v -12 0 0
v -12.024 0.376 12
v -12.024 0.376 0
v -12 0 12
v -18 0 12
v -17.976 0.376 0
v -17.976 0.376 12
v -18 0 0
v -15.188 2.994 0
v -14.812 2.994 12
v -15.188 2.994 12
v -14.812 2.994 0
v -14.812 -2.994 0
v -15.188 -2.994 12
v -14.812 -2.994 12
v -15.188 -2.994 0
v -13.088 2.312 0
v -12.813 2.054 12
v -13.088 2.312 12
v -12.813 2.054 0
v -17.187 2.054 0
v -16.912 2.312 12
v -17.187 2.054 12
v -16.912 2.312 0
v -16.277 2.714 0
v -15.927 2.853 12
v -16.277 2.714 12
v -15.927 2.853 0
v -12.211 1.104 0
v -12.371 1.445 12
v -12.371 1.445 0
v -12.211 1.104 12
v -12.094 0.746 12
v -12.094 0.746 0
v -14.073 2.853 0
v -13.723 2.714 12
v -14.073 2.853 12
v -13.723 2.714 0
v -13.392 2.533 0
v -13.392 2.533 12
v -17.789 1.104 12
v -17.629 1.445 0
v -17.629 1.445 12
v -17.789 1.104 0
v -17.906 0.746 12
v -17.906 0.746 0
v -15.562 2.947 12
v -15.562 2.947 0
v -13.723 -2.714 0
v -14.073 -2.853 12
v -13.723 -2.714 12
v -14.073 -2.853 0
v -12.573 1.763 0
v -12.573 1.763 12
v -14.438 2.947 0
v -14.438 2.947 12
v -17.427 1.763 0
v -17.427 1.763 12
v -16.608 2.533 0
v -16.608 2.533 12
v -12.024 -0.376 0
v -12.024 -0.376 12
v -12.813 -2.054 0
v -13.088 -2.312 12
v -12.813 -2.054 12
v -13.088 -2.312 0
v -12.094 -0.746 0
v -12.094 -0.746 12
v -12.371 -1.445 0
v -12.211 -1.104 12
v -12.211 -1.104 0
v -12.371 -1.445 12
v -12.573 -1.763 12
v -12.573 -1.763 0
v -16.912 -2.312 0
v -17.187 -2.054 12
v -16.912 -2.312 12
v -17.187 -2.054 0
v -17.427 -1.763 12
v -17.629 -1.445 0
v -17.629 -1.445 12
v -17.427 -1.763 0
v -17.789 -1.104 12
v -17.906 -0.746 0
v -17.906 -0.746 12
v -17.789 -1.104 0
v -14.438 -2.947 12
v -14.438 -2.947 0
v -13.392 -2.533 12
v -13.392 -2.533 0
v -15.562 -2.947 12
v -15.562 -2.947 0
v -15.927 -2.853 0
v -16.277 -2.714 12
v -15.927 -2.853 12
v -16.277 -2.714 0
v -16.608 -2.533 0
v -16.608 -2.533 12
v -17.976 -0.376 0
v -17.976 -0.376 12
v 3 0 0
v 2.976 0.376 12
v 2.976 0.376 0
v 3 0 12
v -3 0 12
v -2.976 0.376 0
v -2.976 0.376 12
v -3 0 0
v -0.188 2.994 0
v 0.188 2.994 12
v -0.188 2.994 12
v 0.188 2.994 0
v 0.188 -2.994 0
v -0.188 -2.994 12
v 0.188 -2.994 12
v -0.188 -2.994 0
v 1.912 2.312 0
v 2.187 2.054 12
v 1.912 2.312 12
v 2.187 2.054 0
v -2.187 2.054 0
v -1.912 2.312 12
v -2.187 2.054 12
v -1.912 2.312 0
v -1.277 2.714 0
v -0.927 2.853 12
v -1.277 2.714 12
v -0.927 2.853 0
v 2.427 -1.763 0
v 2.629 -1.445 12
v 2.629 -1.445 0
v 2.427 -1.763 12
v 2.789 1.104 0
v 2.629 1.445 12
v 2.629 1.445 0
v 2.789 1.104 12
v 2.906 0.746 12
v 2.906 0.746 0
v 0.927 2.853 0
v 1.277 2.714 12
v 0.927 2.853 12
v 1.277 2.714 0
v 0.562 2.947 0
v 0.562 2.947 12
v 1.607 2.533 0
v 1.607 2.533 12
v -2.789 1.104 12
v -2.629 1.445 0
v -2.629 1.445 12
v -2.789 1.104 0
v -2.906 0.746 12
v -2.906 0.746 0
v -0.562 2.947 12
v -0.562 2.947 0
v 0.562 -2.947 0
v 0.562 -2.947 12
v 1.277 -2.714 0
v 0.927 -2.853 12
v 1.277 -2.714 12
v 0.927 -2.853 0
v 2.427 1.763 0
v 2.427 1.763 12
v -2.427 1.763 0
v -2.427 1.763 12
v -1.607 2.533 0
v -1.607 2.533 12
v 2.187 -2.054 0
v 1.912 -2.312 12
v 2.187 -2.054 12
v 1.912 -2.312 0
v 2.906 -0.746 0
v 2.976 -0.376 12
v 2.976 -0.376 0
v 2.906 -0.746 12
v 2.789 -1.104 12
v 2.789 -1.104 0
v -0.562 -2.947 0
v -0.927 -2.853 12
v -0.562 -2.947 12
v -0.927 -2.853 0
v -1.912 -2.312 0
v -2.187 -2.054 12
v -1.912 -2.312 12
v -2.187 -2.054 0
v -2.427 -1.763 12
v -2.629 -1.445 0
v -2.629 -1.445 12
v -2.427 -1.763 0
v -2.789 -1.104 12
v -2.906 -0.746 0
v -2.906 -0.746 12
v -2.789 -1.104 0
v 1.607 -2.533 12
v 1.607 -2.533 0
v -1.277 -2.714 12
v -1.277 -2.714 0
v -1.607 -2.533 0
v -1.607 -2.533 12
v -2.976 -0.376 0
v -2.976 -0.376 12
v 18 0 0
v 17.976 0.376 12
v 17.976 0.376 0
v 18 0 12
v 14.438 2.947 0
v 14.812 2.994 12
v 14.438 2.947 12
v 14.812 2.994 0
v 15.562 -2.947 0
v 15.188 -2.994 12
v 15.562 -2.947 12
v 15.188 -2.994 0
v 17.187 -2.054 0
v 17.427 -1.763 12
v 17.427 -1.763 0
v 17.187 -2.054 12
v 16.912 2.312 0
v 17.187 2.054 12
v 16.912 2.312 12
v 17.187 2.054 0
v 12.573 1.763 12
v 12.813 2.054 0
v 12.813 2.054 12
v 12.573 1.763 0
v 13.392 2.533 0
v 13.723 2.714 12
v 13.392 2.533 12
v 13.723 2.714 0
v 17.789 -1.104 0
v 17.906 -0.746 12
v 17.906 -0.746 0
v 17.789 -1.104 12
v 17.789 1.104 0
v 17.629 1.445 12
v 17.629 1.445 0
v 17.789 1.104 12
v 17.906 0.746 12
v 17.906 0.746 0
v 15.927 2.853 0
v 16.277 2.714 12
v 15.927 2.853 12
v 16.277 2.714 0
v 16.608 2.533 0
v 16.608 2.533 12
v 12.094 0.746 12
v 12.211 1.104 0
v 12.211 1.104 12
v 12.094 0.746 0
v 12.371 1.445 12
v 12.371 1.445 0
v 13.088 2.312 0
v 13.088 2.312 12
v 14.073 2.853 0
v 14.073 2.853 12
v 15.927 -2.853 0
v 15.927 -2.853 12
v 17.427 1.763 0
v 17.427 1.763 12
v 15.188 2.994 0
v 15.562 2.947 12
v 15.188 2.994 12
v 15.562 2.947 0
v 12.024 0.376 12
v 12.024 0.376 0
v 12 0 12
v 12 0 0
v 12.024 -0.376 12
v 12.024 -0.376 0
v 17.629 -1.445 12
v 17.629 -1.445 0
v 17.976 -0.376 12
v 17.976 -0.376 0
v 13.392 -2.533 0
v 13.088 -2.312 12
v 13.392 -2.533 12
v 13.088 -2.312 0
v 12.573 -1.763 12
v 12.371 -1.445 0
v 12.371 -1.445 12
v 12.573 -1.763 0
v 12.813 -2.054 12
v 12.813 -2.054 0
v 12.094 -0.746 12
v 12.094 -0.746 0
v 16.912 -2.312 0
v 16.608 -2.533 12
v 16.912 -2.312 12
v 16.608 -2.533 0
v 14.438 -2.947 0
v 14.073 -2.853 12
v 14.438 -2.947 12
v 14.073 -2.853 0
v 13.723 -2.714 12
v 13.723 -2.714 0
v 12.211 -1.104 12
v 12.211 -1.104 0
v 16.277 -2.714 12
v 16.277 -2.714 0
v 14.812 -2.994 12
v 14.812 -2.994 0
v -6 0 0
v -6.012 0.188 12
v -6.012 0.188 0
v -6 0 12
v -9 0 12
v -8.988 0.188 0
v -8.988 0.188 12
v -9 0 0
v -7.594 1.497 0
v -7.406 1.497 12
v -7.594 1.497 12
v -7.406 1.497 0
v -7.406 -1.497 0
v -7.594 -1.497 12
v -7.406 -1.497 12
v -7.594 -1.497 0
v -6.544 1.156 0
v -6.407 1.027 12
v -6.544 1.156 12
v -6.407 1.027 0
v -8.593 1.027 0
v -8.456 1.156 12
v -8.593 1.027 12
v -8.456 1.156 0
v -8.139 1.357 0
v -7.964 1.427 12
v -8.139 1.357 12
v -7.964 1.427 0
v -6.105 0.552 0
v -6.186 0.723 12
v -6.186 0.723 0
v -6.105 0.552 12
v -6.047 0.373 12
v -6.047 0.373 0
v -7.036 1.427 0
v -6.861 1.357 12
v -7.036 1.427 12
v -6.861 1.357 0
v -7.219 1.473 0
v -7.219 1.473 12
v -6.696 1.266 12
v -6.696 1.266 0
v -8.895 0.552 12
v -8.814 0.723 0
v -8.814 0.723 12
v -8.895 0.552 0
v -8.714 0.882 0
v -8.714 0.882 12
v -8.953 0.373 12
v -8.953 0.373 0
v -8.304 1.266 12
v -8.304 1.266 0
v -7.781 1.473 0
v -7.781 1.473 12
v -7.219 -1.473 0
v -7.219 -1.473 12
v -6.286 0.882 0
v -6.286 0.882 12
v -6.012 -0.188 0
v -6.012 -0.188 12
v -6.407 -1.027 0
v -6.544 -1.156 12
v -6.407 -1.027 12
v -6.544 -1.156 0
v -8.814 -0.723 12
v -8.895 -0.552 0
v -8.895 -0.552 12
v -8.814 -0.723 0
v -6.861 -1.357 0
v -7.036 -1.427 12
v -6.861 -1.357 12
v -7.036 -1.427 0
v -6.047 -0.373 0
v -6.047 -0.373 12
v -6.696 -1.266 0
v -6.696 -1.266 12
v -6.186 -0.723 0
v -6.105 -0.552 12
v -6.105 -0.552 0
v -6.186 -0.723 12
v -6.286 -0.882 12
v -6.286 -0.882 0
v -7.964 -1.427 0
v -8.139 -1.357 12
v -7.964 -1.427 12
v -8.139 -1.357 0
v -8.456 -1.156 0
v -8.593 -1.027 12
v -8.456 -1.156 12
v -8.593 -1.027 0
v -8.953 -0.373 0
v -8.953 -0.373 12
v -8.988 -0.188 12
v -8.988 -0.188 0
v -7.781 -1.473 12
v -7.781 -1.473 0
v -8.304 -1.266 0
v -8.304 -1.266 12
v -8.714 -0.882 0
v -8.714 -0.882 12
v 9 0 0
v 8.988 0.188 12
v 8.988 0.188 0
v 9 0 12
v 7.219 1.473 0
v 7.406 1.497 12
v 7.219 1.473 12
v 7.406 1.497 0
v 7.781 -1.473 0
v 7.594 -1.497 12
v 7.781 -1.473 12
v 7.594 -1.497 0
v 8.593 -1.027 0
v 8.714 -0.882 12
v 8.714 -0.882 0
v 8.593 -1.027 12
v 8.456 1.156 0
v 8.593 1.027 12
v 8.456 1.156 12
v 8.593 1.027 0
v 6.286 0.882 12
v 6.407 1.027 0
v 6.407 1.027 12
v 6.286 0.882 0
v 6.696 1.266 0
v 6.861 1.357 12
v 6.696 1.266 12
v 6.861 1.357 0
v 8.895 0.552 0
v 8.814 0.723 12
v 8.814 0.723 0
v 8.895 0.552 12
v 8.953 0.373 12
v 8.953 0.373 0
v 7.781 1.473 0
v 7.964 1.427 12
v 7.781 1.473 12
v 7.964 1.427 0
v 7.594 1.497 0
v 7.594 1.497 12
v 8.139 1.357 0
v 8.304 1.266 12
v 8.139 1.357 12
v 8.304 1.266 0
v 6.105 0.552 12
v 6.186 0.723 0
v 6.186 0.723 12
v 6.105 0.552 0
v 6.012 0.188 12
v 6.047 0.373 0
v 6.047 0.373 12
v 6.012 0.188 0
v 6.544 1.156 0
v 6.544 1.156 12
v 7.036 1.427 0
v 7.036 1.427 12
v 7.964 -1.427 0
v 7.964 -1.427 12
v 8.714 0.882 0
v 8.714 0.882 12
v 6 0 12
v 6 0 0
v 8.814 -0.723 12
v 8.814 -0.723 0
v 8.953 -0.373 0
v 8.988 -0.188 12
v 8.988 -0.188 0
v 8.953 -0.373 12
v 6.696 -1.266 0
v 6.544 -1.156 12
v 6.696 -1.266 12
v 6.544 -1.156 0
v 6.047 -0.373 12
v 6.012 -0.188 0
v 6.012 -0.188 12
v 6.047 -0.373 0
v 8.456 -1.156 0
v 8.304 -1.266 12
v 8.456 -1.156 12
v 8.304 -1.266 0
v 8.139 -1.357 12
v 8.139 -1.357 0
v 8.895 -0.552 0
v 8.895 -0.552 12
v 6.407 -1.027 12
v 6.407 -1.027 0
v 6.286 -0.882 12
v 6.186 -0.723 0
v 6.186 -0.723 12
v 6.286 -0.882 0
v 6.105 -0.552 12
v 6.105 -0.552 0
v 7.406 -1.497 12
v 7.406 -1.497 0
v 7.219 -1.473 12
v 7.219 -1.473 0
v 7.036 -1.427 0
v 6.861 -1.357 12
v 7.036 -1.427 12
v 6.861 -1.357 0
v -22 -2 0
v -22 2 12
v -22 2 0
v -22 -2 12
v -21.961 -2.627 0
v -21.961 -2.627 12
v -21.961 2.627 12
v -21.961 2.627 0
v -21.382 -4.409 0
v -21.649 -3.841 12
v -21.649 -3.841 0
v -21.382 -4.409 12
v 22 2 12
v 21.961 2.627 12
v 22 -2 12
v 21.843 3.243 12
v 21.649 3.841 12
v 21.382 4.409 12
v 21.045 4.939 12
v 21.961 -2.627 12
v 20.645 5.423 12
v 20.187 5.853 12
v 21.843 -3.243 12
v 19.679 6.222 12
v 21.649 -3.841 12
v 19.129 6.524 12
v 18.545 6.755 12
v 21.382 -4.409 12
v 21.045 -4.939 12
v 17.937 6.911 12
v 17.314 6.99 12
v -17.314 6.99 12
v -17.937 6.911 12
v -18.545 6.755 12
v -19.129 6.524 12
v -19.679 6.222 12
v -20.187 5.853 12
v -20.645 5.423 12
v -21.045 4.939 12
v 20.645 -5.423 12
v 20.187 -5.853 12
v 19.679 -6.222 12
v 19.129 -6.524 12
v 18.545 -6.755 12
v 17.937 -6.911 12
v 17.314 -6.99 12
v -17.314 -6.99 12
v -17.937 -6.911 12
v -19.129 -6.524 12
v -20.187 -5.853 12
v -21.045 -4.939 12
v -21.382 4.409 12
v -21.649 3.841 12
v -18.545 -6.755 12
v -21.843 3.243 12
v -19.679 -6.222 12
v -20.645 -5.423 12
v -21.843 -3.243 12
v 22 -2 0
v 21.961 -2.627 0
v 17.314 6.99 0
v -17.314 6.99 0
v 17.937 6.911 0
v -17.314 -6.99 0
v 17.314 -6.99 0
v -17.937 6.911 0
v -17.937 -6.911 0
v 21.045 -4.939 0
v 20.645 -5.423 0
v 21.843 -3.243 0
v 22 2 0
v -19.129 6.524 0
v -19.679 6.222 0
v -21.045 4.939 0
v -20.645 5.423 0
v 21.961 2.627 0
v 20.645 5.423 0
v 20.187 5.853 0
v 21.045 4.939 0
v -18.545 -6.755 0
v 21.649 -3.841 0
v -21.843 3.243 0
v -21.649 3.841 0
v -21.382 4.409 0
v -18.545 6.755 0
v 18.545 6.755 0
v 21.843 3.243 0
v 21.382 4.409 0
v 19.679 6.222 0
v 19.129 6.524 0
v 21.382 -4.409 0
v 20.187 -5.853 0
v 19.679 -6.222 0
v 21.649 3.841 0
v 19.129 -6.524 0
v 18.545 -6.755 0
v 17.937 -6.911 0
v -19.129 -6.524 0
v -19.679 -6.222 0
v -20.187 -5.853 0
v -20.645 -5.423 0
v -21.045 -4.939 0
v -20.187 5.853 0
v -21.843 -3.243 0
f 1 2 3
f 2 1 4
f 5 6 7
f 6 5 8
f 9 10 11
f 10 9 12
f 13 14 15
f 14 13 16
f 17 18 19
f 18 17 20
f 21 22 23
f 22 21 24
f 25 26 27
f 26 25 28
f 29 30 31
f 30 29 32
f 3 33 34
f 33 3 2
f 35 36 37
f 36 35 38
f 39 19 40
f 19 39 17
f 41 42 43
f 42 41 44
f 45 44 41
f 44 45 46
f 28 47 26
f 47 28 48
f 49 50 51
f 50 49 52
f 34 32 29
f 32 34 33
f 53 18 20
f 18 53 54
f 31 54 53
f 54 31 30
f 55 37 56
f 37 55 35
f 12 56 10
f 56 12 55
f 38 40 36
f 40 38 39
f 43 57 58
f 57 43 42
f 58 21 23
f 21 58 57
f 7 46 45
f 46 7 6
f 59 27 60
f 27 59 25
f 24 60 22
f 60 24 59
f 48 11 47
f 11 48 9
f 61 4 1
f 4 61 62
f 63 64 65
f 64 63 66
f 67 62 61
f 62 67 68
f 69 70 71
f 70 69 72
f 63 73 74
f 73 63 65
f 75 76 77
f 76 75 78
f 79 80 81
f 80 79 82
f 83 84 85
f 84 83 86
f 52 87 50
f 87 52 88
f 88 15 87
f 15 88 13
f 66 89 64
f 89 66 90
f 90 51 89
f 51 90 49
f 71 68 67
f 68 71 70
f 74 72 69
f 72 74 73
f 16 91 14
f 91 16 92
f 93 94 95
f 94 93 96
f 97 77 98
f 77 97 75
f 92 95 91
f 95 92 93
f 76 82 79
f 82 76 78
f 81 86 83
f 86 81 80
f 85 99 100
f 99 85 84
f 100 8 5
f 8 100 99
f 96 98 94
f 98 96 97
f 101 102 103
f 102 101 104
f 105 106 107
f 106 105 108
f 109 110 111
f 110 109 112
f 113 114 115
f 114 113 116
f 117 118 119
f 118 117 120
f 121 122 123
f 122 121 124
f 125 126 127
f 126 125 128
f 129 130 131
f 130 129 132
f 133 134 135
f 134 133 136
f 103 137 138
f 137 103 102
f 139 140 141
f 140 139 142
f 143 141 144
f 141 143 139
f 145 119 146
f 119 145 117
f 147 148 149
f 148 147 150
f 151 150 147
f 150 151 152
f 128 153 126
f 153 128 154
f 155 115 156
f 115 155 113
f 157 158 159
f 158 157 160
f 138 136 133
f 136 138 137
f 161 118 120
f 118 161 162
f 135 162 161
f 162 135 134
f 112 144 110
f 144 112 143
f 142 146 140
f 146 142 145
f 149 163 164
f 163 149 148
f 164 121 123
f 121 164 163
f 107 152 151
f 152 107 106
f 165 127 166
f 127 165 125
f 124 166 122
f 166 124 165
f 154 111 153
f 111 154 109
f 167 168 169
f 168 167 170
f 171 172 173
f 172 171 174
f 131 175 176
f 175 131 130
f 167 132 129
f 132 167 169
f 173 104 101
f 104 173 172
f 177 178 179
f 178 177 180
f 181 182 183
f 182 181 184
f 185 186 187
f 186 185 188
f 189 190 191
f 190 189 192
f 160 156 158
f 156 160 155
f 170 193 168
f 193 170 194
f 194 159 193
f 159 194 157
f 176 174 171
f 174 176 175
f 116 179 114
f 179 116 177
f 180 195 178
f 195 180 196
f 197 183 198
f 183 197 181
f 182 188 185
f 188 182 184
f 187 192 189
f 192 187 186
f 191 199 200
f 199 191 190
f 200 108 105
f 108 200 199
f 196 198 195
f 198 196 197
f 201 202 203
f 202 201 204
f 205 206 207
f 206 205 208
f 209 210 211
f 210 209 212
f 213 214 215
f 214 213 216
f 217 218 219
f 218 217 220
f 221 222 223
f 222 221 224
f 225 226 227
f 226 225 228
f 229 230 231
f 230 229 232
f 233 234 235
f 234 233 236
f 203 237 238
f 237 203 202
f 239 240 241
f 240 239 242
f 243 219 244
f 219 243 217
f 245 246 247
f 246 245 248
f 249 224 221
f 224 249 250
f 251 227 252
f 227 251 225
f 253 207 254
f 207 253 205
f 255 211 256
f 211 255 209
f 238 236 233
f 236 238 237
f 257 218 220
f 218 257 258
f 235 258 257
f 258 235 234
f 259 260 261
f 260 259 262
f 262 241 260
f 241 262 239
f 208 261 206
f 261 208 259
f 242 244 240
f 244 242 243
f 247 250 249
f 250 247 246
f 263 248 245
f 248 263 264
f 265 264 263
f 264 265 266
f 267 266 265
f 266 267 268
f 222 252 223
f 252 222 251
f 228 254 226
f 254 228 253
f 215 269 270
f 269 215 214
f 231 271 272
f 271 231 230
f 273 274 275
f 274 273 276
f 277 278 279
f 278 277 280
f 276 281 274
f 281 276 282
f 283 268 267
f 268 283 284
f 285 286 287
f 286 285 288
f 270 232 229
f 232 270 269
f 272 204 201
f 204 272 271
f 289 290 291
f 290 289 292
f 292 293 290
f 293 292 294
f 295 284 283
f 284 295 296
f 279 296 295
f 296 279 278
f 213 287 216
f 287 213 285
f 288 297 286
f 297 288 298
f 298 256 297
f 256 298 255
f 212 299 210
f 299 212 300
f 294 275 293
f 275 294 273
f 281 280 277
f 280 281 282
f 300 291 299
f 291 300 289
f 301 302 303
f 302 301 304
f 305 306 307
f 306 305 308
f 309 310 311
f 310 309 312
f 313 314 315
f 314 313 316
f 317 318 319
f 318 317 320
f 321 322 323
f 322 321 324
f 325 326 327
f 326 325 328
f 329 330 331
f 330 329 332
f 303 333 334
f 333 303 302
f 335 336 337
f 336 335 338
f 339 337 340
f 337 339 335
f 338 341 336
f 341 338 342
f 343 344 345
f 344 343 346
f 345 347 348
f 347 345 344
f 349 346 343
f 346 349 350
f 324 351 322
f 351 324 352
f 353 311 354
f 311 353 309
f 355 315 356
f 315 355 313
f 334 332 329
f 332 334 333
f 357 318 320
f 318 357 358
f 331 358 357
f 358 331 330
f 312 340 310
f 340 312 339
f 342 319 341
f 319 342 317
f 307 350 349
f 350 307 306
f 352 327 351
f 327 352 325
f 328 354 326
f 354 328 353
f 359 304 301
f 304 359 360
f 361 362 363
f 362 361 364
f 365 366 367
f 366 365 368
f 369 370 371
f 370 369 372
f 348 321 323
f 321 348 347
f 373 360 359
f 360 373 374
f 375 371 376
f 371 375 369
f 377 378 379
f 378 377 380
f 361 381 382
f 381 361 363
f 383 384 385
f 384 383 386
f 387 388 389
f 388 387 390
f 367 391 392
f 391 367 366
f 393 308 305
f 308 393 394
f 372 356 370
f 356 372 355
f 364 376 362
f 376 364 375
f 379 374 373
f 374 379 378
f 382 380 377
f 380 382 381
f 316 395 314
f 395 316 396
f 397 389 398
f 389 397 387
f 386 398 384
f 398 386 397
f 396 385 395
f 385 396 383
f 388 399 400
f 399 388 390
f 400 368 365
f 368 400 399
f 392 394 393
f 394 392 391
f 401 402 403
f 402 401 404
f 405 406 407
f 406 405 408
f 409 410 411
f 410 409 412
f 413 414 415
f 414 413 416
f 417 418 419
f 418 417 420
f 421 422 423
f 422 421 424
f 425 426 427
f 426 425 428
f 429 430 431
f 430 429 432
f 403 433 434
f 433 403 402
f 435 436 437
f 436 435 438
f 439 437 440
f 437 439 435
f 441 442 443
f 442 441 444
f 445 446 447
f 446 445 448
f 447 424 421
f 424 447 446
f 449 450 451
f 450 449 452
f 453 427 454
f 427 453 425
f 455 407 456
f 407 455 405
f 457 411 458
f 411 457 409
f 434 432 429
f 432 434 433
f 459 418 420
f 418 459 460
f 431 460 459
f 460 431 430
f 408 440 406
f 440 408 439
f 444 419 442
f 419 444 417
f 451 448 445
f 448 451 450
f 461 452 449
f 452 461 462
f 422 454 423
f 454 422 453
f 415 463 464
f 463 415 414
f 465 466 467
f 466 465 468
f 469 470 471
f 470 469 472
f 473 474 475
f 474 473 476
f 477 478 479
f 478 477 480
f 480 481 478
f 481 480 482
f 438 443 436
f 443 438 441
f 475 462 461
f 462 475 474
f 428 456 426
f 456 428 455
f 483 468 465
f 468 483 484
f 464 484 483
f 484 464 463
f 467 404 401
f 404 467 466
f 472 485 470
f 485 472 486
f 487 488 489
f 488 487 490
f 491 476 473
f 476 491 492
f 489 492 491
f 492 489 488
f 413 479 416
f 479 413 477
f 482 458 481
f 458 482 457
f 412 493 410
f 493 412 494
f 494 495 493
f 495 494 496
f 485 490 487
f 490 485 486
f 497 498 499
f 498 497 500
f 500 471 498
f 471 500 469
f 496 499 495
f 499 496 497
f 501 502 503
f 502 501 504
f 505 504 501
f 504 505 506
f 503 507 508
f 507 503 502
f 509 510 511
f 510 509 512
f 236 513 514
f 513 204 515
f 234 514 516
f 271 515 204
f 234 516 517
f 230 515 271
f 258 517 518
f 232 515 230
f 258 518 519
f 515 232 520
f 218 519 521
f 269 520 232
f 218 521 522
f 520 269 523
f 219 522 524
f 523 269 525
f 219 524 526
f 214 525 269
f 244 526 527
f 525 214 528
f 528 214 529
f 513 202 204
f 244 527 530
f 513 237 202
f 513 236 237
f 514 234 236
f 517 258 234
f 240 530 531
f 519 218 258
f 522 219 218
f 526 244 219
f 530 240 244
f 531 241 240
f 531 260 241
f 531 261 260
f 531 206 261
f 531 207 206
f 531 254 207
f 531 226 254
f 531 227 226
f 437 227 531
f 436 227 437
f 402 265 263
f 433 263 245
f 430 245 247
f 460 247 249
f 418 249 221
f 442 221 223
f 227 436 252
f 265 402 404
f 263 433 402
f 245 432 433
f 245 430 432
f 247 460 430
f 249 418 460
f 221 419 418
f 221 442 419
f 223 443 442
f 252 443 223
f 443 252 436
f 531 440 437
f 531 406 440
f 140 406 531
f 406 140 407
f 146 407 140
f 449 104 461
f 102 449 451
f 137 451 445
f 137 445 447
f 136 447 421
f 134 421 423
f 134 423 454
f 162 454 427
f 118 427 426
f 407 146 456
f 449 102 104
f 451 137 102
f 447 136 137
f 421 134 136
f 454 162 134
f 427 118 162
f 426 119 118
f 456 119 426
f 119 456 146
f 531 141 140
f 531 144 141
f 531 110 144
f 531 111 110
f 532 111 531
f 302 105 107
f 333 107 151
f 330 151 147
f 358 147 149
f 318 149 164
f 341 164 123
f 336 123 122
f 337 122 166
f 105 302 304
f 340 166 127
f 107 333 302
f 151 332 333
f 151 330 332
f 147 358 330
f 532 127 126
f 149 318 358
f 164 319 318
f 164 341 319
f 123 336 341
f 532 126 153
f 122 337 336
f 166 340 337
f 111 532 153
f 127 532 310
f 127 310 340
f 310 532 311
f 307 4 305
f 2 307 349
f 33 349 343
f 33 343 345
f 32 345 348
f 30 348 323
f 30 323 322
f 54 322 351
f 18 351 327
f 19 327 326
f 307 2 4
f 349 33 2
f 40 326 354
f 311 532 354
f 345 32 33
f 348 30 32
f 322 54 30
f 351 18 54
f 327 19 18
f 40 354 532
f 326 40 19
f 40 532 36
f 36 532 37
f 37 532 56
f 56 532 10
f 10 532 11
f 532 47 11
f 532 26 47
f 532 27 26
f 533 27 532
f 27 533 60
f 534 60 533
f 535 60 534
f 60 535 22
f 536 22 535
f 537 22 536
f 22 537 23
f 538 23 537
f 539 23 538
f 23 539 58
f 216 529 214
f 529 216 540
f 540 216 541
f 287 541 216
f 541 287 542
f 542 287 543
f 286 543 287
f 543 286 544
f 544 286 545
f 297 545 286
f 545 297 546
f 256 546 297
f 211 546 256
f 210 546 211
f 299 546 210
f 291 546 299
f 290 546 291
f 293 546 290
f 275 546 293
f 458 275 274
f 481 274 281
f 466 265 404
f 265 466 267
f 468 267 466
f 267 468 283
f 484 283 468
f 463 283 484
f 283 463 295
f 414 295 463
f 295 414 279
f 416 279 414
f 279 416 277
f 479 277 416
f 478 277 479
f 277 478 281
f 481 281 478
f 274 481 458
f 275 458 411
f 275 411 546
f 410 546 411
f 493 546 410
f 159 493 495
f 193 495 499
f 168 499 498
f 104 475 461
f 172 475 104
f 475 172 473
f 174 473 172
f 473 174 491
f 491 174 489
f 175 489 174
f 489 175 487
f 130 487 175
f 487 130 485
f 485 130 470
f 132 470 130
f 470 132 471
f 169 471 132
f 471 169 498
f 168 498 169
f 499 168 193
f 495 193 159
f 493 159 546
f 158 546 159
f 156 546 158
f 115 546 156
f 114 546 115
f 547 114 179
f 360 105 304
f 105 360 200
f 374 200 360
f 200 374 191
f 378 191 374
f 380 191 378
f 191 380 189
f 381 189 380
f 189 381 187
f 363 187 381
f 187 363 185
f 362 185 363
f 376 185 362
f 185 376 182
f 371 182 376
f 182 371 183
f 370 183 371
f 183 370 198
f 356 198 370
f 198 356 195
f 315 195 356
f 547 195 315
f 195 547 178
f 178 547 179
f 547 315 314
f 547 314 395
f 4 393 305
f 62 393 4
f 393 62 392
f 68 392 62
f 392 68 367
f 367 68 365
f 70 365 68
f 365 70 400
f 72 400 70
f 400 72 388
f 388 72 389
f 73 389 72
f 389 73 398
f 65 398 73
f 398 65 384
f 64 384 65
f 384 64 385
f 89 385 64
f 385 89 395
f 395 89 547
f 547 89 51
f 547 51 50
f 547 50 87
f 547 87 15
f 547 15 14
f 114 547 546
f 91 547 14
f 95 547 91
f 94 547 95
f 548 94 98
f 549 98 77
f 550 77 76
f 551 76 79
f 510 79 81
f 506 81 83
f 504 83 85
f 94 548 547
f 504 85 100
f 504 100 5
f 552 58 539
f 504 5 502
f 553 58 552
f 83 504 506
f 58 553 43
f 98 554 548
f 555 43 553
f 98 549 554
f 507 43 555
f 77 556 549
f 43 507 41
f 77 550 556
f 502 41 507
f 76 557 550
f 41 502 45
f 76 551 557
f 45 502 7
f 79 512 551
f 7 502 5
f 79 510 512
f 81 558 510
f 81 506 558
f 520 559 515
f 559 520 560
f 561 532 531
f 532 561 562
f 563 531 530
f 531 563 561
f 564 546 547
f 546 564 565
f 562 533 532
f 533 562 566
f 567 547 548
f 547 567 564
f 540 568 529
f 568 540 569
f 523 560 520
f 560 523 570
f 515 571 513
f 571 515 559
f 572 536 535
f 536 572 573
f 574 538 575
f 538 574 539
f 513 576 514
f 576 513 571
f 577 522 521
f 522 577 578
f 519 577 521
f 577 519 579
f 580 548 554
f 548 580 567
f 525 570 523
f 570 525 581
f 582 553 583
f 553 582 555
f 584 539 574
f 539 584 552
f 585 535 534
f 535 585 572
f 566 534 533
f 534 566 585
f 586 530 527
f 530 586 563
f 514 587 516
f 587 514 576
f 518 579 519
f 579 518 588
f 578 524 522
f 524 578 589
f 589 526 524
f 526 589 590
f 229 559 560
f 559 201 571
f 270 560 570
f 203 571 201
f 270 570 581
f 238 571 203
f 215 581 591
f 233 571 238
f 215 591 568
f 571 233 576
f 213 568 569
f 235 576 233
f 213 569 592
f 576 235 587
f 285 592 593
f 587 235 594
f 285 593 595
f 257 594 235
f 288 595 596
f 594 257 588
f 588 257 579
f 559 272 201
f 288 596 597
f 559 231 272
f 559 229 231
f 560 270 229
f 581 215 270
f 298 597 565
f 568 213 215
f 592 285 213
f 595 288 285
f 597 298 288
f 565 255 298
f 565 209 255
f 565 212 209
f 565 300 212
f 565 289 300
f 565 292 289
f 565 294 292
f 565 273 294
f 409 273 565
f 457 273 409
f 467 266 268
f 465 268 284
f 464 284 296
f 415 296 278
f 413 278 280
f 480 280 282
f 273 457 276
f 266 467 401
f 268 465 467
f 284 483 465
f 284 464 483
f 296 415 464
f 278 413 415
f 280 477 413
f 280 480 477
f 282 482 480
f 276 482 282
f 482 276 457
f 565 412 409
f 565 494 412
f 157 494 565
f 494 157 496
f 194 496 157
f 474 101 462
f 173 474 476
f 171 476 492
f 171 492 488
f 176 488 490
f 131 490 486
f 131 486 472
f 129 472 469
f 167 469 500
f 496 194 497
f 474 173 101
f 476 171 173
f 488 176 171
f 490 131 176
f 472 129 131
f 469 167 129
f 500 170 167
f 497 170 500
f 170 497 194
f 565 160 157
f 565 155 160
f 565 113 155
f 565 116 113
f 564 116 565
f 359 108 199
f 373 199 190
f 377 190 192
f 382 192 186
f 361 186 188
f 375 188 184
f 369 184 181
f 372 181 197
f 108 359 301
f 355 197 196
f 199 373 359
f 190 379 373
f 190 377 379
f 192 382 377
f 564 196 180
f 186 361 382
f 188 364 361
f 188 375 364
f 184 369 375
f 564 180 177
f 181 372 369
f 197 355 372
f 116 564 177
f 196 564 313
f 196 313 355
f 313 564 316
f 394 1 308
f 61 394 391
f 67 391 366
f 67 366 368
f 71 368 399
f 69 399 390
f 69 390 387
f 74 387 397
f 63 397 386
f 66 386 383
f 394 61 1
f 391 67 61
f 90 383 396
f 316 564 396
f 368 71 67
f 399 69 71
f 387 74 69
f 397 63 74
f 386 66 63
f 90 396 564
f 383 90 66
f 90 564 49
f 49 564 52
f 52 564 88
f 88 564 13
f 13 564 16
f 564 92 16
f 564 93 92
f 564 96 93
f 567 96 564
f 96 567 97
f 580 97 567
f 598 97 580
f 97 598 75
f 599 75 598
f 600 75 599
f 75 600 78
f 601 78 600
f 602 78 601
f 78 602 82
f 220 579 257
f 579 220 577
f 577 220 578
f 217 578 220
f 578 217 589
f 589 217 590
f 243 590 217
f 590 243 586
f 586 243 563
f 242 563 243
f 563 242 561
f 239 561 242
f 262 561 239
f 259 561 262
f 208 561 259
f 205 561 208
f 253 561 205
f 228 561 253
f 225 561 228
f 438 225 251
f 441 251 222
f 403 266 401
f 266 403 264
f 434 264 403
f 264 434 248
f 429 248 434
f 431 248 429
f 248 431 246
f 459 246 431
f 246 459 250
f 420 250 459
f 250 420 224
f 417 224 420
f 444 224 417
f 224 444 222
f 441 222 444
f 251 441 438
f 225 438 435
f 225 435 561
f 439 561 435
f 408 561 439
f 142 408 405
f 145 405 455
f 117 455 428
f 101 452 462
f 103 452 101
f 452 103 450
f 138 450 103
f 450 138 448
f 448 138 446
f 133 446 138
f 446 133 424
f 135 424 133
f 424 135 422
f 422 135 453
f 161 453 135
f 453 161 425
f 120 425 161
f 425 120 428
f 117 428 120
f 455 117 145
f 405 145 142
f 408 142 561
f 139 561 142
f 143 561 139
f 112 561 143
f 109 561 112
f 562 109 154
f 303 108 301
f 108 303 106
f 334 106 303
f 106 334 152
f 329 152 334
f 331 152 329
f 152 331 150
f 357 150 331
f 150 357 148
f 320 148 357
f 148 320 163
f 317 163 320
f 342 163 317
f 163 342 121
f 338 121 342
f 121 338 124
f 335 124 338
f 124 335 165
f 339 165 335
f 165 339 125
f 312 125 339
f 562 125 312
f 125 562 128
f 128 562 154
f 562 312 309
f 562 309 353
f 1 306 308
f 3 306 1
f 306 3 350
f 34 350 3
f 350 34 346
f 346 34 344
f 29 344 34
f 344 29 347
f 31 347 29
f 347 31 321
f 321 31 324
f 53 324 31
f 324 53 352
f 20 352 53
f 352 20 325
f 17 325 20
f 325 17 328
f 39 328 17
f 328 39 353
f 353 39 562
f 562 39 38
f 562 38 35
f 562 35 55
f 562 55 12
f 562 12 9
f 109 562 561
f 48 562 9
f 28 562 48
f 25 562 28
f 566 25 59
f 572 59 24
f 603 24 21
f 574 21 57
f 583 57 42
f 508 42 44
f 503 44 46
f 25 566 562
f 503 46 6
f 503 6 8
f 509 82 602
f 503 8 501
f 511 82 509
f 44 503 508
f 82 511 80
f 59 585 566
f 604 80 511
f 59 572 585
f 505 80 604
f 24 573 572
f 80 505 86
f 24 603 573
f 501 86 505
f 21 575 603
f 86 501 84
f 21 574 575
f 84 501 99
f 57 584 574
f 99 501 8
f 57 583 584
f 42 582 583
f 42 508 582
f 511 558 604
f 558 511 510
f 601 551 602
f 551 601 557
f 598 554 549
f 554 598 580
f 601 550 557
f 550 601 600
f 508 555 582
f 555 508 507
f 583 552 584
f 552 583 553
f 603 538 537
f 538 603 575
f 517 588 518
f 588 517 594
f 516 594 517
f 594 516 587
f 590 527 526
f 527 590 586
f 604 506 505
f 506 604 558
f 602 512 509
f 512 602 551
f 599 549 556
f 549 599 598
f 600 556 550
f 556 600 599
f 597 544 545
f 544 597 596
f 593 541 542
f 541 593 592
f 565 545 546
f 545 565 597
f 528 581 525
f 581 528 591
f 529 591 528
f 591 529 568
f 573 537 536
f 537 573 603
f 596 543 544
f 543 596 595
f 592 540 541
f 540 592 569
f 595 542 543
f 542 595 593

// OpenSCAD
$fn = 50;


difference() {
	union() {
		translate(v = [0, 0, 0]) {
			rotate(a = [0, 0, 0]) {
				hull() {
					translate(v = [-17.0000000000, 2.0000000000, 0]) {
						rotate(a = [0, 0, 0]) {
							translate(v = [0, 0, 0]) {
								rotate(a = [0, 0, 0]) {
									cylinder(h = 12, r = 5);
								}
							}
						}
					}
					translate(v = [17.0000000000, 2.0000000000, 0]) {
						rotate(a = [0, 0, 0]) {
							translate(v = [0, 0, 0]) {
								rotate(a = [0, 0, 0]) {
									cylinder(h = 12, r = 5);
								}
							}
						}
					}
					translate(v = [-17.0000000000, -2.0000000000, 0]) {
						rotate(a = [0, 0, 0]) {
							translate(v = [0, 0, 0]) {
								rotate(a = [0, 0, 0]) {
									cylinder(h = 12, r = 5);
								}
							}
						}
					}
					translate(v = [17.0000000000, -2.0000000000, 0]) {
						rotate(a = [0, 0, 0]) {
							translate(v = [0, 0, 0]) {
								rotate(a = [0, 0, 0]) {
									cylinder(h = 12, r = 5);
								}
							}
						}
					}
				}
			}
		}
	}
	union() {
		translate(v = [-15.0000000000, 0.0000000000, 0]) {
			rotate(a = [0, 0, 0]) {
				translate(v = [0, 0, -50]) {
					rotate(a = [0, 0, 0]) {
						cylinder(h = 100, r = 3.0000000000);
					}
				}
			}
		}
		translate(v = [0.0000000000, 0.0000000000, 0]) {
			rotate(a = [0, 0, 0]) {
				translate(v = [0, 0, -50]) {
					rotate(a = [0, 0, 0]) {
						cylinder(h = 100, r = 3.0000000000);
					}
				}
			}
		}
		translate(v = [15.0000000000, 0.0000000000, 0]) {
			rotate(a = [0, 0, 0]) {
				translate(v = [0, 0, -50]) {
					rotate(a = [0, 0, 0]) {
						cylinder(h = 100, r = 3.0000000000);
					}
				}
			}
		}
		translate(v = [-15.0000000000, 0.0000000000, 0]) {
			rotate(a = [0, 0, 0]) {
				translate(v = [0, 0, -50]) {
					rotate(a = [0, 0, 0]) {
						cylinder(h = 100, r = 1.5000000000);
					}
				}
			}
		}
		translate(v = [-7.5000000000, 0.0000000000, 0]) {
			rotate(a = [0, 0, 0]) {
				translate(v = [0, 0, -50]) {
					rotate(a = [0, 0, 0]) {
						cylinder(h = 100, r = 1.5000000000);
					}
				}
			}
		}
		translate(v = [0.0000000000, 0.0000000000, 0]) {
			rotate(a = [0, 0, 0]) {
				translate(v = [0, 0, -50]) {
					rotate(a = [0, 0, 0]) {
						cylinder(h = 100, r = 1.5000000000);
					}
				}
			}
		}
		translate(v = [7.5000000000, 0.0000000000, 0]) {
			rotate(a = [0, 0, 0]) {
				translate(v = [0, 0, -50]) {
					rotate(a = [0, 0, 0]) {
						cylinder(h = 100, r = 1.5000000000);
					}
				}
			}
		}
		translate(v = [15.0000000000, 0.0000000000, 0]) {
			rotate(a = [0, 0, 0]) {
				translate(v = [0, 0, -50]) {
					rotate(a = [0, 0, 0]) {
						cylinder(h = 100, r = 1.5000000000);
					}
				}
			}
		}
	}
}
